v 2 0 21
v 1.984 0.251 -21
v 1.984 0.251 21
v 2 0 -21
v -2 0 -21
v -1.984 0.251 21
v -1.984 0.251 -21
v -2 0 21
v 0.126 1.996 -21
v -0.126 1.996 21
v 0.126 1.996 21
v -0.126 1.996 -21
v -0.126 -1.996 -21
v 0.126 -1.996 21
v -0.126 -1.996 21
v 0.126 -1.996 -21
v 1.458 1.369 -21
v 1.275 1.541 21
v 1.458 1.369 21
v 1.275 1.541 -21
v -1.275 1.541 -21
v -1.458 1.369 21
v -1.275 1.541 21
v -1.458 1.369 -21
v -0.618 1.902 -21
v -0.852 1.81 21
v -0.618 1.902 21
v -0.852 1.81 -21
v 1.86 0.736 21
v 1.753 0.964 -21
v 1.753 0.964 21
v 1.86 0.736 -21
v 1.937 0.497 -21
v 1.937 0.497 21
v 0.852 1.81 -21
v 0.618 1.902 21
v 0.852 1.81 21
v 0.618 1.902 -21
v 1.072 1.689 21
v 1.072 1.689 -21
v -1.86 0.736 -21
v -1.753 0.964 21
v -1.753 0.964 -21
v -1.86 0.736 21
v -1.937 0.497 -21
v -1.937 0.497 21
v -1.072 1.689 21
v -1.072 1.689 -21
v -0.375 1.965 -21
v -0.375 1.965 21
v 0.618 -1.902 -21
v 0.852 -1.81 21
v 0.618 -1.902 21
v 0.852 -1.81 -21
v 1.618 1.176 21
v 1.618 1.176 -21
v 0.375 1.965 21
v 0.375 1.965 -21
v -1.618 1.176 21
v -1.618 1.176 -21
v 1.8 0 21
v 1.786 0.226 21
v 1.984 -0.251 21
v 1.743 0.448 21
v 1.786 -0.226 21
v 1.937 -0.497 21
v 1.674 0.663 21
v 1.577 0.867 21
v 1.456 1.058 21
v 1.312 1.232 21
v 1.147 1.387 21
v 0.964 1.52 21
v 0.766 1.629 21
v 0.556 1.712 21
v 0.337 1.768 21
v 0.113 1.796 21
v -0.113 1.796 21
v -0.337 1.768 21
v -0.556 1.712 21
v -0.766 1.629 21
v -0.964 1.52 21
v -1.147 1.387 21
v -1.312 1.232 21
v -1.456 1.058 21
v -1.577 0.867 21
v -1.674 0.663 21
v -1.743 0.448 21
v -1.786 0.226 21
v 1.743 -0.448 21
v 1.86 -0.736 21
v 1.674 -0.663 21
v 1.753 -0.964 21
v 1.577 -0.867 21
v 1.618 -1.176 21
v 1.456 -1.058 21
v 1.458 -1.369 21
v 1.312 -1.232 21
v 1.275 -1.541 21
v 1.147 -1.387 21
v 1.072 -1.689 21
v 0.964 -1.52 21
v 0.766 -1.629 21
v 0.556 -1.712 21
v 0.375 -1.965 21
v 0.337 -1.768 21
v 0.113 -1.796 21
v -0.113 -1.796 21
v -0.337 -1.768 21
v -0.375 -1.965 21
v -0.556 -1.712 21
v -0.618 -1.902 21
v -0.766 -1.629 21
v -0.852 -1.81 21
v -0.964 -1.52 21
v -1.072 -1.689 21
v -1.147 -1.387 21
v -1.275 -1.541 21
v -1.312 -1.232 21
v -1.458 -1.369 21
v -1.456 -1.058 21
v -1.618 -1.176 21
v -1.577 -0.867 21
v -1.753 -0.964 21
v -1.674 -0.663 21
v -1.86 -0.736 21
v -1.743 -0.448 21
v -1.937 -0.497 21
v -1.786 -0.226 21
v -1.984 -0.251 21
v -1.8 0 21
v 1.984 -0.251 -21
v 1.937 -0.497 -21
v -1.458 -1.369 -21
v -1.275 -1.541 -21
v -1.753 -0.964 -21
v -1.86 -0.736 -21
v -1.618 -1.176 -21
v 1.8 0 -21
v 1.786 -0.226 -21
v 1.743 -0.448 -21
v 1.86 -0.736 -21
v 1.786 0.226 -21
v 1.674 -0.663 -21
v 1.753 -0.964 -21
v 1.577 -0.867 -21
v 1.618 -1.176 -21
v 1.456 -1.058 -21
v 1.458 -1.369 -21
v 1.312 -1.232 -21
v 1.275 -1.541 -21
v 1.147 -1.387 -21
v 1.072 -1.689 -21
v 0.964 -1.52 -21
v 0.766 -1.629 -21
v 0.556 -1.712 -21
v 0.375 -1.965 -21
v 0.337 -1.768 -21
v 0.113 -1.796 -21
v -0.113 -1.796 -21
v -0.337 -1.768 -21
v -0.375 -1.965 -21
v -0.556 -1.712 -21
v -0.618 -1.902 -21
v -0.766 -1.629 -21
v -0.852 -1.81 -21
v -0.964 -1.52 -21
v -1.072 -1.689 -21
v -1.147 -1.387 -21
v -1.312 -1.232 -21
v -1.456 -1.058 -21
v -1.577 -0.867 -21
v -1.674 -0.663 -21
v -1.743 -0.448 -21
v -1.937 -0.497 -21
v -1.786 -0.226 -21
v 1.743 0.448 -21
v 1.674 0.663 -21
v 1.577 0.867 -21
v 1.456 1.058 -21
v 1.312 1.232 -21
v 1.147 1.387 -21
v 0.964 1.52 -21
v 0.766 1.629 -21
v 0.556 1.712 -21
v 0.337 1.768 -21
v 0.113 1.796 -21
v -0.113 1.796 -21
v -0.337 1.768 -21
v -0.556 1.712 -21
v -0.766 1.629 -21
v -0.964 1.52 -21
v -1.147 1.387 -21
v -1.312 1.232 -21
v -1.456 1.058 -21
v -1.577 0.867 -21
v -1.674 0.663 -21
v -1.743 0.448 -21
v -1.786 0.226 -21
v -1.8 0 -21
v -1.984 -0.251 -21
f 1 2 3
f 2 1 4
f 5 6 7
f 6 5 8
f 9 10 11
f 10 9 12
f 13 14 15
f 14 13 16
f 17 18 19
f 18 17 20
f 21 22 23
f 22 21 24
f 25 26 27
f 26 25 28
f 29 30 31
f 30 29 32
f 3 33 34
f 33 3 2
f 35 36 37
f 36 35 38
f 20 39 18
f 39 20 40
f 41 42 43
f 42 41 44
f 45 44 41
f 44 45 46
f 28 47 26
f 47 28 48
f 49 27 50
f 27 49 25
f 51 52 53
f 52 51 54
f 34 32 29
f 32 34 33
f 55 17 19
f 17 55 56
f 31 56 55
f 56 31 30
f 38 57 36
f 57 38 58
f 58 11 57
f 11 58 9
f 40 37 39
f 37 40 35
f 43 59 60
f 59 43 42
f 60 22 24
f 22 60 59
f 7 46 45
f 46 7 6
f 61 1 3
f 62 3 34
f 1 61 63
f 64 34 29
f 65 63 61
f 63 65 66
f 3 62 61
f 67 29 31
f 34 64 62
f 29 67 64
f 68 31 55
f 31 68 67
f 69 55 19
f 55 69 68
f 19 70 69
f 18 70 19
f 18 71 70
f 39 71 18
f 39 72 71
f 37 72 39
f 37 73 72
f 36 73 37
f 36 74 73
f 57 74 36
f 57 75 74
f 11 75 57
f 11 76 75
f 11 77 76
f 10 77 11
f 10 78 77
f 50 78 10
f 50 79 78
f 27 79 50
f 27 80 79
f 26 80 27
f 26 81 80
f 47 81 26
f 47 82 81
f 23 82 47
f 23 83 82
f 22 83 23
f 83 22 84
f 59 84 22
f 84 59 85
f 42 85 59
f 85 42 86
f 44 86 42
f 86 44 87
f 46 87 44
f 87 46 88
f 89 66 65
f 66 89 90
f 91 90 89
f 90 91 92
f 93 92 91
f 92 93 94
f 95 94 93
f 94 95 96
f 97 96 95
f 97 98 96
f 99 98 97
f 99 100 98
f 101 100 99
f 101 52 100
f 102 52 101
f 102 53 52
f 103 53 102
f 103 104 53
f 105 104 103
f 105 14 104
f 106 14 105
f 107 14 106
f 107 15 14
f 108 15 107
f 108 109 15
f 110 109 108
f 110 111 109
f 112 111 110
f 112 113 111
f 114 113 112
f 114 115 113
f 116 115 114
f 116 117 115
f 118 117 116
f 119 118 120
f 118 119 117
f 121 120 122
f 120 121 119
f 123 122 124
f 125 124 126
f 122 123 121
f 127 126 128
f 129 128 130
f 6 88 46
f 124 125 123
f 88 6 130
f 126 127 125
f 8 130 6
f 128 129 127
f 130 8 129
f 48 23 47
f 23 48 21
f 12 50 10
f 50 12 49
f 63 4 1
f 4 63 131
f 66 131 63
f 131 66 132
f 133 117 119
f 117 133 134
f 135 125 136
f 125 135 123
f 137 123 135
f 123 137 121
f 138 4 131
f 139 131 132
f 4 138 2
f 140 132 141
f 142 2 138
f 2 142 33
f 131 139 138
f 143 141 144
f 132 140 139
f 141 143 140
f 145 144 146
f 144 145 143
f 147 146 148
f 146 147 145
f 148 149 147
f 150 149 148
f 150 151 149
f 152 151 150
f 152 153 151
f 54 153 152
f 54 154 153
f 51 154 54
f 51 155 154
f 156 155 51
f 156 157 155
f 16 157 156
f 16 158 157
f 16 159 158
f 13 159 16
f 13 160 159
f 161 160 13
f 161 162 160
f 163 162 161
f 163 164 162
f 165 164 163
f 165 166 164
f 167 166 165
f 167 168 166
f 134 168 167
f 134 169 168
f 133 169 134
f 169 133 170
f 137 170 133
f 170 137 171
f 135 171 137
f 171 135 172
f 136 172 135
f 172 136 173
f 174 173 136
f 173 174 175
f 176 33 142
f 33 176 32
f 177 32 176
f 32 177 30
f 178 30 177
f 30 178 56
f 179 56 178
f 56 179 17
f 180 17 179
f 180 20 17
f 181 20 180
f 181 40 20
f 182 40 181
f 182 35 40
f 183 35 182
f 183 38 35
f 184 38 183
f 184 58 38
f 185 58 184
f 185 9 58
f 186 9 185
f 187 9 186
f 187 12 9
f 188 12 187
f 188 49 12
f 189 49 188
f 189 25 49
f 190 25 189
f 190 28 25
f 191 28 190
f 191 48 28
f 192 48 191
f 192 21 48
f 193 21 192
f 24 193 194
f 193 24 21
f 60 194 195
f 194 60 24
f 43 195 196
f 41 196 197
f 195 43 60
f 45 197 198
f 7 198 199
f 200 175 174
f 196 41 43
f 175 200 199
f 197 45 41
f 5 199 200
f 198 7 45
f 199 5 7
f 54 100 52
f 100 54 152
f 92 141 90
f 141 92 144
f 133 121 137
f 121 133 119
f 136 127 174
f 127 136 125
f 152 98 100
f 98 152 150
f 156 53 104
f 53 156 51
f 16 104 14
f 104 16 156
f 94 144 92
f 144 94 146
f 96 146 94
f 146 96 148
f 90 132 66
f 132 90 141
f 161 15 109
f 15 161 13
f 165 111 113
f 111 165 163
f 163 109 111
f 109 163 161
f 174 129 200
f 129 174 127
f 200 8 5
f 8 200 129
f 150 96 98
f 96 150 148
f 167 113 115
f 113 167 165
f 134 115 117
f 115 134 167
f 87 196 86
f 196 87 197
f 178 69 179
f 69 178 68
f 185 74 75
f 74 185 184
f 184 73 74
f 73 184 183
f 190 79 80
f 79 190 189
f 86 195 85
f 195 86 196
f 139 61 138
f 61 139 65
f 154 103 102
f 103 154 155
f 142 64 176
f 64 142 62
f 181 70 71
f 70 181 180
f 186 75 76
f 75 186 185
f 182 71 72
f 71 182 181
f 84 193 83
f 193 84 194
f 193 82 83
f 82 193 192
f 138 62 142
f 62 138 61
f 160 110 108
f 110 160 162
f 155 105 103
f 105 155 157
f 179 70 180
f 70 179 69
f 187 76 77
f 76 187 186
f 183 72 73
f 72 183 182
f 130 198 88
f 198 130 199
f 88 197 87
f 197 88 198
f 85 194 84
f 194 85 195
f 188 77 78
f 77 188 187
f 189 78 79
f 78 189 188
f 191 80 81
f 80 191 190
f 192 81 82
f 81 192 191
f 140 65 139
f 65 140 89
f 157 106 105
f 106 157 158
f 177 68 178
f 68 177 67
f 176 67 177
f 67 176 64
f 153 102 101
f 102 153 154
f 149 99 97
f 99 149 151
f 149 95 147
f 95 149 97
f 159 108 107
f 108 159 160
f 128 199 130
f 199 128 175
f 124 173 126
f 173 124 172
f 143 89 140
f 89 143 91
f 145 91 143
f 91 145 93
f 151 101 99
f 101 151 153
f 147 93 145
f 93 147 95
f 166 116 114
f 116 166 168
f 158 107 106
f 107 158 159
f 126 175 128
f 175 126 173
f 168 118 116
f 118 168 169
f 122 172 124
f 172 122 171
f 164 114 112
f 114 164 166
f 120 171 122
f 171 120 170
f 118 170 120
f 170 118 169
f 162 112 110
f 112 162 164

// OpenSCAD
$fn = 50;


difference() {
	union() {
		translate(v = [0, 0, -21.0000000000]) {
			cylinder(h = 42, r = 2.0000000000);
		}
	}
	union() {
		translate(v = [0, 0, -100.0000000000]) {
			cylinder(h = 200, r = 1.8000000000);
		}
	}
}
